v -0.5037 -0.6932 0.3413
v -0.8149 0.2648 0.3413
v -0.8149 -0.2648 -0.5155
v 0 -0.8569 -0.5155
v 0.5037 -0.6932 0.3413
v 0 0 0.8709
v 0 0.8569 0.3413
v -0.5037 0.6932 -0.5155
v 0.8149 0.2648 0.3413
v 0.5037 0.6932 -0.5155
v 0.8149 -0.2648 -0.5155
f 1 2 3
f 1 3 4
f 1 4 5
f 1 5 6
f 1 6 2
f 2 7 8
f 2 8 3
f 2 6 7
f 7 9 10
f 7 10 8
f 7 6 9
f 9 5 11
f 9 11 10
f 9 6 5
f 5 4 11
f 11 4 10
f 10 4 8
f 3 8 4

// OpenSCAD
polyhedron( points = [[-0.503657040719905, -0.693224445038074, 0.341344212357487], [-0.814934210545919, 0.264788176209574, 0.341344212357487], [-1.22771222709766e-10, 0.856872537766999, 0.341344212357487], [0.814934210395479, 0.264788176209574, 0.341344212357487], [0.503657040723353, -0.693224445038074, 0.341344212357487], [2.78343901342483e-11, -0.856872537681031, -0.515528325282007], [-0.814934210507766, -0.264788176111001, -0.515528325282007], [-0.5036570405939, 0.693224444950703, -0.515528325293417], [0.503657040821727, 0.69322444490889, -0.515528325255118], [0.814934210494034, -0.26478817622741, -0.515528325264012], [2.78343901342483e-11, 4.9848921806865e-11, 0.870920564589128]], faces = [[0, 1, 6], [0, 6, 5], [0, 5, 4], [0, 4, 10], [0, 10, 1], [1, 2, 7], [1, 7, 6], [1, 10, 2], [2, 3, 8], [2, 8, 7], [2, 10, 3], [3, 4, 9], [3, 9, 8], [3, 10, 4], [4, 5, 9], [5, 6, 7, 8, 9]]);
